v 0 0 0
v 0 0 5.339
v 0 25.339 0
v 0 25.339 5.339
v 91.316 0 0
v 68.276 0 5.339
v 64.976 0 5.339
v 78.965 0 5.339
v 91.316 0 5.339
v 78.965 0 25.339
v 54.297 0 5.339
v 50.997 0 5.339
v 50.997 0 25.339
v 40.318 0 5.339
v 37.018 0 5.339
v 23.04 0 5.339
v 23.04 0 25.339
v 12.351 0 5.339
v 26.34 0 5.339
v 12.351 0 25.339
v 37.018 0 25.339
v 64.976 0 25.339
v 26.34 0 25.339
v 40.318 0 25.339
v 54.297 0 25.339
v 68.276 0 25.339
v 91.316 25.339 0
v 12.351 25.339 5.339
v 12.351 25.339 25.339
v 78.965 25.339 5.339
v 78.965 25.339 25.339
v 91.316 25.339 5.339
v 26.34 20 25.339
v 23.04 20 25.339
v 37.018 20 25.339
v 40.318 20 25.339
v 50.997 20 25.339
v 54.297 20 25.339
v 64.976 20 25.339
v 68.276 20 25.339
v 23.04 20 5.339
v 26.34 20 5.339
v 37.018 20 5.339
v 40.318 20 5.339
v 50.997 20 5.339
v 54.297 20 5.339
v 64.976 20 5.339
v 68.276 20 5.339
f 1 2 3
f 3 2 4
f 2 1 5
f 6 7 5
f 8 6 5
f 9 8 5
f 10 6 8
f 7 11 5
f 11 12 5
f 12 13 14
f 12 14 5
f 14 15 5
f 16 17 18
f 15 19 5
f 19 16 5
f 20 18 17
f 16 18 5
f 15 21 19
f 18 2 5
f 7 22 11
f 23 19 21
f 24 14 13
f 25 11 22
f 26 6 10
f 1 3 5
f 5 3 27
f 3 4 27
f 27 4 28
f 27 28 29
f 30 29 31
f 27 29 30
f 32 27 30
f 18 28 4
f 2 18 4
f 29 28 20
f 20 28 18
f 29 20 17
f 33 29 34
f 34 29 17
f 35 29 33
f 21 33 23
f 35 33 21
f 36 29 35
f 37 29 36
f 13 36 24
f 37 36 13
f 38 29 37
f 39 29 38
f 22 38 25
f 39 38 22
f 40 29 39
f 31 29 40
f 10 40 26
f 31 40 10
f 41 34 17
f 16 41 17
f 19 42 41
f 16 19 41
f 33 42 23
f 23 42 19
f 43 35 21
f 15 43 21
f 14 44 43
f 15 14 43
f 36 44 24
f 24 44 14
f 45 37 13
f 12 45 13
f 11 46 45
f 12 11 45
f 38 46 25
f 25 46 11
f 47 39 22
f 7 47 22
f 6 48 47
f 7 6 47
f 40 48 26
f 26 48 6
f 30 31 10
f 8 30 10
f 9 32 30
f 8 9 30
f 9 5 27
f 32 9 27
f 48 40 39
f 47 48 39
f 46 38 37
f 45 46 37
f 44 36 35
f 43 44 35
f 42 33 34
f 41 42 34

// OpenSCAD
//Parameters
glassSlotWidth = 3.3;
glassSlotHeight = 20;
glassSlotDepth = 20;
distanceBetweenSlots = glassSlotWidth*2*1.618;

glassNumSlots = 4;


baseHeight = glassSlotWidth*1.618;
baseWidthPadding = glassSlotHeight/1.618;
baseDepthPadding = glassSlotWidth*1.618;

technicalOverlap = 0.01;

//Calculated parameters
totalWidth = 	2*baseWidthPadding + 
					glassNumSlots * glassSlotWidth +
					(glassNumSlots+1)*distanceBetweenSlots;
totalDepth =	glassSlotDepth + baseDepthPadding;
totalHeight = baseHeight + glassSlotHeight;

//Sanity check
echo("Width", totalWidth);
echo("Height", totalHeight);
echo("Depth", totalDepth);

difference() {
	//Make root cube
	cube([totalWidth, totalDepth, totalHeight ]);

	//Subtract slots
	for (i = [1:glassNumSlots]) {
		assign (startx = 	baseWidthPadding + 
								distanceBetweenSlots*(i) + 
								glassSlotWidth*(i-1))
		{
			translate([startx,-technicalOverlap,baseHeight]) {
				cube(	[glassSlotWidth, 
						glassSlotDepth+technicalOverlap, 
						glassSlotHeight+technicalOverlap]);
			}
		}
	}

	//Make nice edges
	translate([	-technicalOverlap,
					-technicalOverlap,
					baseHeight])
	{
		rotate([0,0,0])
		{
			cube([	baseWidthPadding, 
						totalDepth+2*technicalOverlap, 
						glassSlotHeight+technicalOverlap]);
		}
	}

	translate([	+technicalOverlap+totalWidth-baseWidthPadding,
					-technicalOverlap,
					baseHeight])
	{
		rotate([0,0,0])
		{
			cube([	baseWidthPadding, 
						totalDepth+2*technicalOverlap, 
						glassSlotHeight+technicalOverlap]);
		}
	}

	
}
